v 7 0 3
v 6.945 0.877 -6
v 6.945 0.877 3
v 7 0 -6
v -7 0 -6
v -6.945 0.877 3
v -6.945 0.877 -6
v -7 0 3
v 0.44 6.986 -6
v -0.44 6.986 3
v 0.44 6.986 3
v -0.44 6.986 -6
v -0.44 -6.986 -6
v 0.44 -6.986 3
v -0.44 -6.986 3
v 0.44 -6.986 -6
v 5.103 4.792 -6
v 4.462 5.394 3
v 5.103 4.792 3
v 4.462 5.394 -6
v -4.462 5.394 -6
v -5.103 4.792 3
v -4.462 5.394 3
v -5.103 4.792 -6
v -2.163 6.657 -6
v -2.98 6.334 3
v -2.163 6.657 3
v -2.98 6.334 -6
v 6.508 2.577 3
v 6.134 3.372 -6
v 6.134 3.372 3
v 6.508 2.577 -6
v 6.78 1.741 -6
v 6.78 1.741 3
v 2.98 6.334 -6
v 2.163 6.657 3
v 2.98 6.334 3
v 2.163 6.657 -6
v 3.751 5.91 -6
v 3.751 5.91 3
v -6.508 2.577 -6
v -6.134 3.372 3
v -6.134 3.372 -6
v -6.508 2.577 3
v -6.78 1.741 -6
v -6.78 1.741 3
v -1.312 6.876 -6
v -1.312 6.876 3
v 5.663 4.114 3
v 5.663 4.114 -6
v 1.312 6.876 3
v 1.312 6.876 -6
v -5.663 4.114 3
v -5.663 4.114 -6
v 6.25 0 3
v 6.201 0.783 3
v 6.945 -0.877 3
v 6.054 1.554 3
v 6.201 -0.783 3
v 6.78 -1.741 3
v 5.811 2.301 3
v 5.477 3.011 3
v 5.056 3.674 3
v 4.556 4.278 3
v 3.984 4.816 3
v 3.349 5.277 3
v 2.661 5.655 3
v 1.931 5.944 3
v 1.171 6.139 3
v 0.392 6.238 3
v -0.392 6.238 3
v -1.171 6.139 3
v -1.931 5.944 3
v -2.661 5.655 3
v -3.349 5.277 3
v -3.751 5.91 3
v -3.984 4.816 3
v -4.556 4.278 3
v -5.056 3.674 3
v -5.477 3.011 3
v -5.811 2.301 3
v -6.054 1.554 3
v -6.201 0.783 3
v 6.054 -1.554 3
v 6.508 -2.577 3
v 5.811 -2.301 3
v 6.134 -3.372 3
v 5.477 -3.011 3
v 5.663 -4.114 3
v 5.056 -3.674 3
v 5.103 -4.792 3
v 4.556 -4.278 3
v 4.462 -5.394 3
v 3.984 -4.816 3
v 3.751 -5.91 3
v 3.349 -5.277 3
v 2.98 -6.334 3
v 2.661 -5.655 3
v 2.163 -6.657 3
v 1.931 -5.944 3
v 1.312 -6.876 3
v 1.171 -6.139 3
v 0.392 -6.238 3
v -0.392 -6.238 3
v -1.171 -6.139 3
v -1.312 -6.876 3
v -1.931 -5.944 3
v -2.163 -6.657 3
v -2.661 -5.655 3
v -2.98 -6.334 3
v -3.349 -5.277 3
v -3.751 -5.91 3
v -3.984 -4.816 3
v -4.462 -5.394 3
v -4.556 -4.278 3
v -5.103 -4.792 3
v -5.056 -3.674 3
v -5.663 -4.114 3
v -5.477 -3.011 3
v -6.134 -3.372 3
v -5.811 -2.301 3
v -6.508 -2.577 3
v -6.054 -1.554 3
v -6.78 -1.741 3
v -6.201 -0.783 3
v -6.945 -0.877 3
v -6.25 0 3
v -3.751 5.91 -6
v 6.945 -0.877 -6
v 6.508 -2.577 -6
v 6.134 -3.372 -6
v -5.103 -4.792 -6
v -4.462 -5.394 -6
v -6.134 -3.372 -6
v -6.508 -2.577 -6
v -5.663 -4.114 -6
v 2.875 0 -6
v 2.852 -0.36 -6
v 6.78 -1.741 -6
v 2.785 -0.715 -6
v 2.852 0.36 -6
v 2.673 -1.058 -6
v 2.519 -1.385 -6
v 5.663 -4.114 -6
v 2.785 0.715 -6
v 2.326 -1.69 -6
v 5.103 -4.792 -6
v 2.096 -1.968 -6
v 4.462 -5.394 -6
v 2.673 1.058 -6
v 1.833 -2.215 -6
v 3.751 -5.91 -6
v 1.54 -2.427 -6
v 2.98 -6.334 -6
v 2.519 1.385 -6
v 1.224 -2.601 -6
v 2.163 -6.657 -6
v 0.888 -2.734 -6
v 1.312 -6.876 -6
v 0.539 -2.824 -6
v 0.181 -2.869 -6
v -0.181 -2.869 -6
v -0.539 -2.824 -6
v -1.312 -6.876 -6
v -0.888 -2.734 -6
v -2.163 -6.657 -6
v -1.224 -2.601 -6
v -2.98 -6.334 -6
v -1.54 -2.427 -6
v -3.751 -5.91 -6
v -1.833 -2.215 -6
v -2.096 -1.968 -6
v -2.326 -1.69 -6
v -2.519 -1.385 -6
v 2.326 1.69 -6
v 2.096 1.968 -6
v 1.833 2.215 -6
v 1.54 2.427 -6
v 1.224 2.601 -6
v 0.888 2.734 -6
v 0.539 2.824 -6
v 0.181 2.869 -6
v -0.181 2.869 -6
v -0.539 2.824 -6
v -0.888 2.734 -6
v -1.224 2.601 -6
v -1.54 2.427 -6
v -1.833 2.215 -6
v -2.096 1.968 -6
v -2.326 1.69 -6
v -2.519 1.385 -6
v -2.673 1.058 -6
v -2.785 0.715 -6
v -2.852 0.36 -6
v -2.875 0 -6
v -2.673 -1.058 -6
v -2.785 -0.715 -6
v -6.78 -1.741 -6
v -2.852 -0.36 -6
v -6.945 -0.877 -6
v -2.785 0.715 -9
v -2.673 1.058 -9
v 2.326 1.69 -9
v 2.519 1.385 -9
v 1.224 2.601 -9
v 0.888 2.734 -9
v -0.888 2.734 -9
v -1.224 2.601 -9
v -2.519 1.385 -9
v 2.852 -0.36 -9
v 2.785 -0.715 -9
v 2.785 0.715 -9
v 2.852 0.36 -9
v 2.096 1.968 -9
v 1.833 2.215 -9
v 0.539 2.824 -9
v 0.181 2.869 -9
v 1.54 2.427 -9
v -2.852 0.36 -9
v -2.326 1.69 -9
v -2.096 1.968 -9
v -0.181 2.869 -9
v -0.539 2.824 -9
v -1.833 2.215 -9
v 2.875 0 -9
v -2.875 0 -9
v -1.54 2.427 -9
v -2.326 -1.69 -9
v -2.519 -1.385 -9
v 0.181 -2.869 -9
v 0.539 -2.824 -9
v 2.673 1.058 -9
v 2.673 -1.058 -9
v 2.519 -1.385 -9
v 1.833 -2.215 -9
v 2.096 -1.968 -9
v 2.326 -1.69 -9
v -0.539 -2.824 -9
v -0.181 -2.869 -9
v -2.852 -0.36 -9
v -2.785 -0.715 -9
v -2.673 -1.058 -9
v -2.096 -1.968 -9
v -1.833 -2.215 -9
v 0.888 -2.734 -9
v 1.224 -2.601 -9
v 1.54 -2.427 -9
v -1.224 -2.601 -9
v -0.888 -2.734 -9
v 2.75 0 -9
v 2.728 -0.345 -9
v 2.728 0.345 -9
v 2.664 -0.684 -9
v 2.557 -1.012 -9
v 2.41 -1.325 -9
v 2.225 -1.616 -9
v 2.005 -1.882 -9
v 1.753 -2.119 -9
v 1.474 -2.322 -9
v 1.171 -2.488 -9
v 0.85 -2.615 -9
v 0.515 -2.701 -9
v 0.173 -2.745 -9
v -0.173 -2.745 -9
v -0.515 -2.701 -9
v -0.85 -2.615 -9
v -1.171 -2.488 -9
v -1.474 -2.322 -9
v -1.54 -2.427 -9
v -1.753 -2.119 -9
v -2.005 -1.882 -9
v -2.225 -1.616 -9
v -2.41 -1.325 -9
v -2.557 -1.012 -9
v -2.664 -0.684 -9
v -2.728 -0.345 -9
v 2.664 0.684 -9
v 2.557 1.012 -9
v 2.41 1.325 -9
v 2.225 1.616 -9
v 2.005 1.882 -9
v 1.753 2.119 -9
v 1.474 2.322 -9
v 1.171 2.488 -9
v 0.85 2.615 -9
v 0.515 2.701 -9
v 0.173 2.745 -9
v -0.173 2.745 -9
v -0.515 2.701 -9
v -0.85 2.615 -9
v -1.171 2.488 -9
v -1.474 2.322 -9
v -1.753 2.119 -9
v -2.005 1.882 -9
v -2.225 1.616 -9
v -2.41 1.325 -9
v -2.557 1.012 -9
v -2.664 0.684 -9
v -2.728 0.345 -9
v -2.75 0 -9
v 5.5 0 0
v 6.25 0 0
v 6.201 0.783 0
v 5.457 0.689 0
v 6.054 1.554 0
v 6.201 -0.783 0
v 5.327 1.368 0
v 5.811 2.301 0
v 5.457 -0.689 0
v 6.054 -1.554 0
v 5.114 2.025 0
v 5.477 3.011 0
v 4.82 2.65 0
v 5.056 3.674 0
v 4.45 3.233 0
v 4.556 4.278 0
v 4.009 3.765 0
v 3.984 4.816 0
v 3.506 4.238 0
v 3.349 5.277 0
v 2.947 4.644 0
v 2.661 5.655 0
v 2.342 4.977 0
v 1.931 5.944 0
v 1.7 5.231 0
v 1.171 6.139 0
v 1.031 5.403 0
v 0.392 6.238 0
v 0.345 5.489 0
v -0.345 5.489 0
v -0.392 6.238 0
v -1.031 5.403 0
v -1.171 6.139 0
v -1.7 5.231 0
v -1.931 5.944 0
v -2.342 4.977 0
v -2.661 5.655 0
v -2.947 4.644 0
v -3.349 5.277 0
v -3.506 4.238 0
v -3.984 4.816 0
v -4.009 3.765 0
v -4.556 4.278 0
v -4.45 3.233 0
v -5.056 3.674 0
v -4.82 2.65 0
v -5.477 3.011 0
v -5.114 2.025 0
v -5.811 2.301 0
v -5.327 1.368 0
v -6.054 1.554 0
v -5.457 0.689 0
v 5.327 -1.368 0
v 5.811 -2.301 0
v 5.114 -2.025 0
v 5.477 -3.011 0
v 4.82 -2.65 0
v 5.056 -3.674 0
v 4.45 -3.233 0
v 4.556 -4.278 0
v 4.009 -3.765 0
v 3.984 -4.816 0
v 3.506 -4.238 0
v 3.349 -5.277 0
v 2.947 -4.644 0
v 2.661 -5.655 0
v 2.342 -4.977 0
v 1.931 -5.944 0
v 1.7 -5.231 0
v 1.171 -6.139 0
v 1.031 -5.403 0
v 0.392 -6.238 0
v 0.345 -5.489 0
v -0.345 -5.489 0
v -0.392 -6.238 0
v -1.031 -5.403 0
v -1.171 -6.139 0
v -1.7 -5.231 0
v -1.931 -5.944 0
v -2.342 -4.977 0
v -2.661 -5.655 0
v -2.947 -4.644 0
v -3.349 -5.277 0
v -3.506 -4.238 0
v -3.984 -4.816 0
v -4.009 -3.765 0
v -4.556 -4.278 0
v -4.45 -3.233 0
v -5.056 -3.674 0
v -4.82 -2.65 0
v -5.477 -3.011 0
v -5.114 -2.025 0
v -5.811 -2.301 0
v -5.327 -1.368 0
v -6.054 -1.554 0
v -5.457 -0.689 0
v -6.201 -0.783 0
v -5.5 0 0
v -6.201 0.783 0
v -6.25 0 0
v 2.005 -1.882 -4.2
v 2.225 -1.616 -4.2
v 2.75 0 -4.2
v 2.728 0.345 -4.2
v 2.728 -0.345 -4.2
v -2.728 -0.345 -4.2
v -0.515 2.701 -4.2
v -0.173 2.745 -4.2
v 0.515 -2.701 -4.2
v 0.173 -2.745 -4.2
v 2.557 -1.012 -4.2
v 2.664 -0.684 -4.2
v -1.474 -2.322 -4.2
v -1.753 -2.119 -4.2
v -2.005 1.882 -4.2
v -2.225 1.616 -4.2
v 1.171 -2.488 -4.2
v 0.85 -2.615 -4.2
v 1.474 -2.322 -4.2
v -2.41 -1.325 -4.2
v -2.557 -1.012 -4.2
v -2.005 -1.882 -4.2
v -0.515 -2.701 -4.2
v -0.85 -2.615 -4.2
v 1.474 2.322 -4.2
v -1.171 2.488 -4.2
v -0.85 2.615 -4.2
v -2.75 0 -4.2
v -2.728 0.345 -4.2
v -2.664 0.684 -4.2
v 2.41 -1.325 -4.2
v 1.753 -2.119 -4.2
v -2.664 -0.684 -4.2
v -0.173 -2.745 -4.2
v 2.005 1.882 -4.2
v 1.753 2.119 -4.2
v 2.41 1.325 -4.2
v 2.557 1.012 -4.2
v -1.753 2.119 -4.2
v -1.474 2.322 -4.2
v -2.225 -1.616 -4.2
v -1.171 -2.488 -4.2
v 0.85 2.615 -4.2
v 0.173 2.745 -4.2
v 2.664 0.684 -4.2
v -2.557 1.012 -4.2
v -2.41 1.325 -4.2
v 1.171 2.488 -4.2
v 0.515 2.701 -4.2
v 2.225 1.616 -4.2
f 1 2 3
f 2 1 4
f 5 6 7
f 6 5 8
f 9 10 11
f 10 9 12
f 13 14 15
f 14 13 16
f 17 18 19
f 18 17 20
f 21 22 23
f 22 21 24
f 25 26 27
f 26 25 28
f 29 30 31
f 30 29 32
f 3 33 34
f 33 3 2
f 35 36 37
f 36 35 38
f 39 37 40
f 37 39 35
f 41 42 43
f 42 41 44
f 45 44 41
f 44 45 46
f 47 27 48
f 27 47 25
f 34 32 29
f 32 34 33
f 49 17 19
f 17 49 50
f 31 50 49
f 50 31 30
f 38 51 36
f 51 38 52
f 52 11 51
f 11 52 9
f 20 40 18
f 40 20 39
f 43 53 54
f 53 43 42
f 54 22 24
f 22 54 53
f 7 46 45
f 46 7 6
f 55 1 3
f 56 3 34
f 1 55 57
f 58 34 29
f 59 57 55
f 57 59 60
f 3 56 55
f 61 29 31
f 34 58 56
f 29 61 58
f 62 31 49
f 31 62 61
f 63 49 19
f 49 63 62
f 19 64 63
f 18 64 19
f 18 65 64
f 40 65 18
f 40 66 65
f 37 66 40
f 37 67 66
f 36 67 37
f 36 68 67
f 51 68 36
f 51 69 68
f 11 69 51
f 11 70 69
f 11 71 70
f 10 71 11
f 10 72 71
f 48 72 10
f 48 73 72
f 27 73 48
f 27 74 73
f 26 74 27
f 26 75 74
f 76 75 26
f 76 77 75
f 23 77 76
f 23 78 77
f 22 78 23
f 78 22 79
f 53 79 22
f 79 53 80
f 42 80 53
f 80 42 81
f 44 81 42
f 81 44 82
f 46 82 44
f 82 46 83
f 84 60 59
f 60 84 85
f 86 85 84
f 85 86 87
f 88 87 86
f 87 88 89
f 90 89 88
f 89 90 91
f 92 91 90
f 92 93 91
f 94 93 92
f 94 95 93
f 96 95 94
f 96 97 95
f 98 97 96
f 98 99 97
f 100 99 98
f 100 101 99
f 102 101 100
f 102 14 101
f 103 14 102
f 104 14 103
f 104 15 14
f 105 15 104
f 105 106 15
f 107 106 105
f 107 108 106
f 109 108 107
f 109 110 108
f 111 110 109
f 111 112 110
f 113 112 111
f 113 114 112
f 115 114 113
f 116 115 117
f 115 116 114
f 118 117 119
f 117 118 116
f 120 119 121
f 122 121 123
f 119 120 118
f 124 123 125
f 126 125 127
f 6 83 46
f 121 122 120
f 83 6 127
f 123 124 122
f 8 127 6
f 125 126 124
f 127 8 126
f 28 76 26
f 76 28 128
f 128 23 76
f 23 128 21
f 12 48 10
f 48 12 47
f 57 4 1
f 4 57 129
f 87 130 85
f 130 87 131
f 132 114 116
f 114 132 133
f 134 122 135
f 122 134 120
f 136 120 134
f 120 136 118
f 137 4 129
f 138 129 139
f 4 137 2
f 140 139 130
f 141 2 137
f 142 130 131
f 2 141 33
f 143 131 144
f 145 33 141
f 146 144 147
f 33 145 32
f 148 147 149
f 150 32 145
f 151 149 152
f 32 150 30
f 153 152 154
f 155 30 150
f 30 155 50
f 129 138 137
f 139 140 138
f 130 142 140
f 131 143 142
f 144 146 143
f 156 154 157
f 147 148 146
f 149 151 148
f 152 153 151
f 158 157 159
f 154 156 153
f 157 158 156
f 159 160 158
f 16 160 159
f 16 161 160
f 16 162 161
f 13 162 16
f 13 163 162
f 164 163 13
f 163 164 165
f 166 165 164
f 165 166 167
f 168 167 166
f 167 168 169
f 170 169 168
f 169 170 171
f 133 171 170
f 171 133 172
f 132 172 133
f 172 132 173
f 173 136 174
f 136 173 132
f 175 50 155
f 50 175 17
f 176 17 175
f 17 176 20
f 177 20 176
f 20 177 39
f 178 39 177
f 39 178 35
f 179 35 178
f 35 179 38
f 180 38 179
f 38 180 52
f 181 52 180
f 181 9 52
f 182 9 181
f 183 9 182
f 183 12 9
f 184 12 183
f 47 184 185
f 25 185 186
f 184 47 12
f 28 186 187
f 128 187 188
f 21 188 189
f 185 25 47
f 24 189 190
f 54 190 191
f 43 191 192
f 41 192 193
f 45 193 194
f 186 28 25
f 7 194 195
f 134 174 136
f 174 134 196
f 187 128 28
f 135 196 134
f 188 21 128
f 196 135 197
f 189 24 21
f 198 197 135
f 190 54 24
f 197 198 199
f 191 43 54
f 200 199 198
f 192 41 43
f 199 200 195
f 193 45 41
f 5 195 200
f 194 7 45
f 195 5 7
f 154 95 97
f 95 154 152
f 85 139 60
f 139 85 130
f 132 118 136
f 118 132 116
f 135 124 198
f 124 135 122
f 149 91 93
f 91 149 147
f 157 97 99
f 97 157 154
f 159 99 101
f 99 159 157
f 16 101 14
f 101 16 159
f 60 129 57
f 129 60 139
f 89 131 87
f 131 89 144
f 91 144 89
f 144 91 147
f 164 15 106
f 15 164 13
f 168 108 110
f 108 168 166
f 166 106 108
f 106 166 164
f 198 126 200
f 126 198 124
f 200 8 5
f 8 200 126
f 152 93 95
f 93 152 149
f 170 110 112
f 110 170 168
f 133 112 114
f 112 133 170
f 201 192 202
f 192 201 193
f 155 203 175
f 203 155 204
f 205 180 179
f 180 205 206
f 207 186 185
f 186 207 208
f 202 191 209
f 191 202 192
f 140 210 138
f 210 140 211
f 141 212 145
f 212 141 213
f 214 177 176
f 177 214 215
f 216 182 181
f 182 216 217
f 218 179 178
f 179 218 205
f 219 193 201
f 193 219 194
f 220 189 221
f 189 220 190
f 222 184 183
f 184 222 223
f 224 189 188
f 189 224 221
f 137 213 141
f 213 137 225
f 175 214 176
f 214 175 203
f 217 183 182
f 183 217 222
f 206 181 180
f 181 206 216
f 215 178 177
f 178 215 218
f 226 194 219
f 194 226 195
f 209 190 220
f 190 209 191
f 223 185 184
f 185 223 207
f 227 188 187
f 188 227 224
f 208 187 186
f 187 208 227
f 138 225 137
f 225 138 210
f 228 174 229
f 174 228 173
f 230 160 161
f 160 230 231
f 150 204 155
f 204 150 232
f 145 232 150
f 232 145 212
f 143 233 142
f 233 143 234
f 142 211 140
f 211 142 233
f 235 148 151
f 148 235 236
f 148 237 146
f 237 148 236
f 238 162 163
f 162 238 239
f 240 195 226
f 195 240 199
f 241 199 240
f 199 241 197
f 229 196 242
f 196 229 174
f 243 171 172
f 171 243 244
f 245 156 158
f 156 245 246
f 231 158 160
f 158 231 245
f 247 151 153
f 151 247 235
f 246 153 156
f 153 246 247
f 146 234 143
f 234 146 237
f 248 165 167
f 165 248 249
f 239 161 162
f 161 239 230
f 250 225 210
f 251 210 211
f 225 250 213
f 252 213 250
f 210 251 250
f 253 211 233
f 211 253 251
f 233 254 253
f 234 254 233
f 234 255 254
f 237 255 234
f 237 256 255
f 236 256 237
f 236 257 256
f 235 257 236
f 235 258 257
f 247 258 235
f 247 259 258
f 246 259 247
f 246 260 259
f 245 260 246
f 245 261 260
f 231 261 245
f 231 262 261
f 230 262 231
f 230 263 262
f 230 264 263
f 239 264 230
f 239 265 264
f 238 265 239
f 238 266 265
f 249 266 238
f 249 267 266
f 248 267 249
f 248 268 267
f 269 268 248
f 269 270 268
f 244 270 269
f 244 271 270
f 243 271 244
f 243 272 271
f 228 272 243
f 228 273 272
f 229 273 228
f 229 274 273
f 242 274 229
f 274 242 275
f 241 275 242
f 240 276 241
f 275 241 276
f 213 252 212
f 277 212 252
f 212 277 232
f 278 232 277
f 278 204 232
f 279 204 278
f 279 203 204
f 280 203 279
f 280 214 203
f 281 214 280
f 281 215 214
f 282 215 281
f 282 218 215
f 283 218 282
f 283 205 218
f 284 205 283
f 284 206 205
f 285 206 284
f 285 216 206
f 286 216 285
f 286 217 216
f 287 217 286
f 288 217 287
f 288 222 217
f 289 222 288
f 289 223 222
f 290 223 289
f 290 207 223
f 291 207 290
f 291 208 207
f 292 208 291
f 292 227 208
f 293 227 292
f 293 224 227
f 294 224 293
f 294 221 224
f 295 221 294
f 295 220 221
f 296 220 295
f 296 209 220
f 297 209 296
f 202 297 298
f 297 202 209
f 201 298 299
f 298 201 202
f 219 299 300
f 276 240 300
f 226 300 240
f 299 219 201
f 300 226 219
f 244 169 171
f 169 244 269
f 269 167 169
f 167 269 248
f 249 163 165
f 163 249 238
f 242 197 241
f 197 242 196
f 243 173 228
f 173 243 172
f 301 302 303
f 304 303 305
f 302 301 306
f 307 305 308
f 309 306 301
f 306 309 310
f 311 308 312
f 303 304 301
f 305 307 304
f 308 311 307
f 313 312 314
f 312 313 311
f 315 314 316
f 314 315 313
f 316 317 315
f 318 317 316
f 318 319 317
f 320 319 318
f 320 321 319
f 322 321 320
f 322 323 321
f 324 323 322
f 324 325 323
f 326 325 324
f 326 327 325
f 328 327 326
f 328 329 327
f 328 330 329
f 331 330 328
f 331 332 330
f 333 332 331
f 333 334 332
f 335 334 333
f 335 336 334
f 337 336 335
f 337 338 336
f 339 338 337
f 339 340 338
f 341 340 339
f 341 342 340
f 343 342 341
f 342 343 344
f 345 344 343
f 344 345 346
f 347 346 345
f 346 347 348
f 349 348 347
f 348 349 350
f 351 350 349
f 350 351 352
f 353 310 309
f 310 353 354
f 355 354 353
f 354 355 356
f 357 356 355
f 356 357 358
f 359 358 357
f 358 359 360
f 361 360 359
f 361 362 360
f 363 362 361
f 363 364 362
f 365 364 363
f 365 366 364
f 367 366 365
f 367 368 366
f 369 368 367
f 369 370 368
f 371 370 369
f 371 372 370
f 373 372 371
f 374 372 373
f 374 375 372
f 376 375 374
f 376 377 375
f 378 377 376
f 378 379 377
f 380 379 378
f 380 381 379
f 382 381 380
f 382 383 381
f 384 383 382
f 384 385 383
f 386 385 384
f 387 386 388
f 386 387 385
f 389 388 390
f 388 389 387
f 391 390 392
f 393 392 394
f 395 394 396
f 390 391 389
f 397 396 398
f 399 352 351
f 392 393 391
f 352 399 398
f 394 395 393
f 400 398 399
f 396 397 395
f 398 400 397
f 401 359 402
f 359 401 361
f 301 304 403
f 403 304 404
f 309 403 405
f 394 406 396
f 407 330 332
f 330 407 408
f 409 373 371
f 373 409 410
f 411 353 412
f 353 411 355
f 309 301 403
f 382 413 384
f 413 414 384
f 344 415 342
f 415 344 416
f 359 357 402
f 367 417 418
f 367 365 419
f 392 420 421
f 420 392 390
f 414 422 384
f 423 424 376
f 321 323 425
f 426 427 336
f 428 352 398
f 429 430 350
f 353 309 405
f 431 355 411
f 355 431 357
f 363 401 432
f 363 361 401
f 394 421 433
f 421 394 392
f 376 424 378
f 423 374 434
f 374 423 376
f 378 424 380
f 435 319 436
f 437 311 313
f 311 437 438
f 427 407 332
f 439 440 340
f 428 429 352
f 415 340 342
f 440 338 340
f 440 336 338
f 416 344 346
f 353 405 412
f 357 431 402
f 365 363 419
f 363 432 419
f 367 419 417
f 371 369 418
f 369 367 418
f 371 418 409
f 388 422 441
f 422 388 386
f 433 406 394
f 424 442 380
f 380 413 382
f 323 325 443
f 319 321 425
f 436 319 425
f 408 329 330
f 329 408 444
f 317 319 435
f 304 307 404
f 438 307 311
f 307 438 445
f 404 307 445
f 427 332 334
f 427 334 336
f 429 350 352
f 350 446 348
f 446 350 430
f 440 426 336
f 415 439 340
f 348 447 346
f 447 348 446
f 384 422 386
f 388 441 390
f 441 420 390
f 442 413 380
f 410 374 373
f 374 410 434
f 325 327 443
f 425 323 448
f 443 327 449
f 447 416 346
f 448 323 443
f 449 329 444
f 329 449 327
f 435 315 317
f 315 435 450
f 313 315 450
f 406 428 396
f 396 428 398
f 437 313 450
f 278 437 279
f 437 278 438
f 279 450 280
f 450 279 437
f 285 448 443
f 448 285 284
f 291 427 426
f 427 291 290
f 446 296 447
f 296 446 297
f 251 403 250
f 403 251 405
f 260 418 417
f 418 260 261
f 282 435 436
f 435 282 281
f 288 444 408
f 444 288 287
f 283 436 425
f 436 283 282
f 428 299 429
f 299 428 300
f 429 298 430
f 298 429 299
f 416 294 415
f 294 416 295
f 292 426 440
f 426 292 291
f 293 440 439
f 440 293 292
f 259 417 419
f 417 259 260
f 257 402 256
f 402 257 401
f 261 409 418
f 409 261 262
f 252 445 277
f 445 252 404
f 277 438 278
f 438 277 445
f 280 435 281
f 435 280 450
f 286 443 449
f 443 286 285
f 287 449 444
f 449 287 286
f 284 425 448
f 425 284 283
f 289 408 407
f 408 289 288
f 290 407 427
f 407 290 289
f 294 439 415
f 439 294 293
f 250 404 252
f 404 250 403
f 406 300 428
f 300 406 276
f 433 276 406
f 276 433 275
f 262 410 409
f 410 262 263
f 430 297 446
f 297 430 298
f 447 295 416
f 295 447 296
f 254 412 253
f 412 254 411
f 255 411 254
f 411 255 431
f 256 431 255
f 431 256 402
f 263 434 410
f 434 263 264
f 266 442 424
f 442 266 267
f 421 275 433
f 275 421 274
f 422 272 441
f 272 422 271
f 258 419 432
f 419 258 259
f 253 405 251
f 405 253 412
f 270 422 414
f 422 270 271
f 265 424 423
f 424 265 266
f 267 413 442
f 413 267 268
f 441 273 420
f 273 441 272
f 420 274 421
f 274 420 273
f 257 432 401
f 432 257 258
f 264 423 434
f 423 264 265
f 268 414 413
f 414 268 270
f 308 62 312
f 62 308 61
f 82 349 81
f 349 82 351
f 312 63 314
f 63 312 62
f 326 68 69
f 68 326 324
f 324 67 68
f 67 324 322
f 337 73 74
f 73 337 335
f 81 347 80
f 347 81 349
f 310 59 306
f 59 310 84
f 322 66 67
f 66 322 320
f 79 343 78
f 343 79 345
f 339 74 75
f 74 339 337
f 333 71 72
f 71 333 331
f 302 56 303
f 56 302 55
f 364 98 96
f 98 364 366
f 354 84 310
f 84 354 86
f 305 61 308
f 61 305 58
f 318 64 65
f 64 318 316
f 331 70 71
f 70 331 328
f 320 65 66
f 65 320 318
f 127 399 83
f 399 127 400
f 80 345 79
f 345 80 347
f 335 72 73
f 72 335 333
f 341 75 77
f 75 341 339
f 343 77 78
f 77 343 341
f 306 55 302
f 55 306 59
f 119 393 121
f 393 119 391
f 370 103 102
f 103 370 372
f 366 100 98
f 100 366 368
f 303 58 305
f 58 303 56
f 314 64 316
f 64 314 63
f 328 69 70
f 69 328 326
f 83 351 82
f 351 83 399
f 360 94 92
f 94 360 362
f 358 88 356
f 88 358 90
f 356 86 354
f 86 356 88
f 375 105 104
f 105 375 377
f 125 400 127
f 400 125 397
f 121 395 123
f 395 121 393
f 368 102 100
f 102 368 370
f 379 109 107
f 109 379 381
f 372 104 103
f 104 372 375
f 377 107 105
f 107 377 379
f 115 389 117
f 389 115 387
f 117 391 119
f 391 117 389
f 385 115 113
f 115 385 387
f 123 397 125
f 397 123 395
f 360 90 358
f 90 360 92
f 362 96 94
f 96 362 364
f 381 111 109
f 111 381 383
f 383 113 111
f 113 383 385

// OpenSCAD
$fn = 50;

difference() {
	union() {
		translate(v = [0, 0, -6.0]) {
			cylinder(h = 9, r = 7.0);
		}
		#translate(v = [0, 0, -9.0]) {
			cylinder(h = 9, r = 2.875);
		}
	}
	union() {
		translate(v = [0, 0, 0]) {
			rotate(a = [0, 0, 0]) {
				difference() {
					union() {
						translate(v = [0, 0, -9.0]) {
							cylinder(h = 9, r = 2.25);
						}
						translate(v = [0, 0, -4.2]) {
							cylinder(h = 4.2, r1 = 2.75, r2 = 5.5);
						}
						translate(v = [0, 0, -9.0]) {
							cylinder(h = 9, r = 2.75);
						}
						translate(v = [0, 0, -9.0]) {
							cylinder(h = 9, r = 2.25);
						}
					}
					union();
				}
			}
		}
		#cylinder(h = 3, r = 6.25);
	}
}
